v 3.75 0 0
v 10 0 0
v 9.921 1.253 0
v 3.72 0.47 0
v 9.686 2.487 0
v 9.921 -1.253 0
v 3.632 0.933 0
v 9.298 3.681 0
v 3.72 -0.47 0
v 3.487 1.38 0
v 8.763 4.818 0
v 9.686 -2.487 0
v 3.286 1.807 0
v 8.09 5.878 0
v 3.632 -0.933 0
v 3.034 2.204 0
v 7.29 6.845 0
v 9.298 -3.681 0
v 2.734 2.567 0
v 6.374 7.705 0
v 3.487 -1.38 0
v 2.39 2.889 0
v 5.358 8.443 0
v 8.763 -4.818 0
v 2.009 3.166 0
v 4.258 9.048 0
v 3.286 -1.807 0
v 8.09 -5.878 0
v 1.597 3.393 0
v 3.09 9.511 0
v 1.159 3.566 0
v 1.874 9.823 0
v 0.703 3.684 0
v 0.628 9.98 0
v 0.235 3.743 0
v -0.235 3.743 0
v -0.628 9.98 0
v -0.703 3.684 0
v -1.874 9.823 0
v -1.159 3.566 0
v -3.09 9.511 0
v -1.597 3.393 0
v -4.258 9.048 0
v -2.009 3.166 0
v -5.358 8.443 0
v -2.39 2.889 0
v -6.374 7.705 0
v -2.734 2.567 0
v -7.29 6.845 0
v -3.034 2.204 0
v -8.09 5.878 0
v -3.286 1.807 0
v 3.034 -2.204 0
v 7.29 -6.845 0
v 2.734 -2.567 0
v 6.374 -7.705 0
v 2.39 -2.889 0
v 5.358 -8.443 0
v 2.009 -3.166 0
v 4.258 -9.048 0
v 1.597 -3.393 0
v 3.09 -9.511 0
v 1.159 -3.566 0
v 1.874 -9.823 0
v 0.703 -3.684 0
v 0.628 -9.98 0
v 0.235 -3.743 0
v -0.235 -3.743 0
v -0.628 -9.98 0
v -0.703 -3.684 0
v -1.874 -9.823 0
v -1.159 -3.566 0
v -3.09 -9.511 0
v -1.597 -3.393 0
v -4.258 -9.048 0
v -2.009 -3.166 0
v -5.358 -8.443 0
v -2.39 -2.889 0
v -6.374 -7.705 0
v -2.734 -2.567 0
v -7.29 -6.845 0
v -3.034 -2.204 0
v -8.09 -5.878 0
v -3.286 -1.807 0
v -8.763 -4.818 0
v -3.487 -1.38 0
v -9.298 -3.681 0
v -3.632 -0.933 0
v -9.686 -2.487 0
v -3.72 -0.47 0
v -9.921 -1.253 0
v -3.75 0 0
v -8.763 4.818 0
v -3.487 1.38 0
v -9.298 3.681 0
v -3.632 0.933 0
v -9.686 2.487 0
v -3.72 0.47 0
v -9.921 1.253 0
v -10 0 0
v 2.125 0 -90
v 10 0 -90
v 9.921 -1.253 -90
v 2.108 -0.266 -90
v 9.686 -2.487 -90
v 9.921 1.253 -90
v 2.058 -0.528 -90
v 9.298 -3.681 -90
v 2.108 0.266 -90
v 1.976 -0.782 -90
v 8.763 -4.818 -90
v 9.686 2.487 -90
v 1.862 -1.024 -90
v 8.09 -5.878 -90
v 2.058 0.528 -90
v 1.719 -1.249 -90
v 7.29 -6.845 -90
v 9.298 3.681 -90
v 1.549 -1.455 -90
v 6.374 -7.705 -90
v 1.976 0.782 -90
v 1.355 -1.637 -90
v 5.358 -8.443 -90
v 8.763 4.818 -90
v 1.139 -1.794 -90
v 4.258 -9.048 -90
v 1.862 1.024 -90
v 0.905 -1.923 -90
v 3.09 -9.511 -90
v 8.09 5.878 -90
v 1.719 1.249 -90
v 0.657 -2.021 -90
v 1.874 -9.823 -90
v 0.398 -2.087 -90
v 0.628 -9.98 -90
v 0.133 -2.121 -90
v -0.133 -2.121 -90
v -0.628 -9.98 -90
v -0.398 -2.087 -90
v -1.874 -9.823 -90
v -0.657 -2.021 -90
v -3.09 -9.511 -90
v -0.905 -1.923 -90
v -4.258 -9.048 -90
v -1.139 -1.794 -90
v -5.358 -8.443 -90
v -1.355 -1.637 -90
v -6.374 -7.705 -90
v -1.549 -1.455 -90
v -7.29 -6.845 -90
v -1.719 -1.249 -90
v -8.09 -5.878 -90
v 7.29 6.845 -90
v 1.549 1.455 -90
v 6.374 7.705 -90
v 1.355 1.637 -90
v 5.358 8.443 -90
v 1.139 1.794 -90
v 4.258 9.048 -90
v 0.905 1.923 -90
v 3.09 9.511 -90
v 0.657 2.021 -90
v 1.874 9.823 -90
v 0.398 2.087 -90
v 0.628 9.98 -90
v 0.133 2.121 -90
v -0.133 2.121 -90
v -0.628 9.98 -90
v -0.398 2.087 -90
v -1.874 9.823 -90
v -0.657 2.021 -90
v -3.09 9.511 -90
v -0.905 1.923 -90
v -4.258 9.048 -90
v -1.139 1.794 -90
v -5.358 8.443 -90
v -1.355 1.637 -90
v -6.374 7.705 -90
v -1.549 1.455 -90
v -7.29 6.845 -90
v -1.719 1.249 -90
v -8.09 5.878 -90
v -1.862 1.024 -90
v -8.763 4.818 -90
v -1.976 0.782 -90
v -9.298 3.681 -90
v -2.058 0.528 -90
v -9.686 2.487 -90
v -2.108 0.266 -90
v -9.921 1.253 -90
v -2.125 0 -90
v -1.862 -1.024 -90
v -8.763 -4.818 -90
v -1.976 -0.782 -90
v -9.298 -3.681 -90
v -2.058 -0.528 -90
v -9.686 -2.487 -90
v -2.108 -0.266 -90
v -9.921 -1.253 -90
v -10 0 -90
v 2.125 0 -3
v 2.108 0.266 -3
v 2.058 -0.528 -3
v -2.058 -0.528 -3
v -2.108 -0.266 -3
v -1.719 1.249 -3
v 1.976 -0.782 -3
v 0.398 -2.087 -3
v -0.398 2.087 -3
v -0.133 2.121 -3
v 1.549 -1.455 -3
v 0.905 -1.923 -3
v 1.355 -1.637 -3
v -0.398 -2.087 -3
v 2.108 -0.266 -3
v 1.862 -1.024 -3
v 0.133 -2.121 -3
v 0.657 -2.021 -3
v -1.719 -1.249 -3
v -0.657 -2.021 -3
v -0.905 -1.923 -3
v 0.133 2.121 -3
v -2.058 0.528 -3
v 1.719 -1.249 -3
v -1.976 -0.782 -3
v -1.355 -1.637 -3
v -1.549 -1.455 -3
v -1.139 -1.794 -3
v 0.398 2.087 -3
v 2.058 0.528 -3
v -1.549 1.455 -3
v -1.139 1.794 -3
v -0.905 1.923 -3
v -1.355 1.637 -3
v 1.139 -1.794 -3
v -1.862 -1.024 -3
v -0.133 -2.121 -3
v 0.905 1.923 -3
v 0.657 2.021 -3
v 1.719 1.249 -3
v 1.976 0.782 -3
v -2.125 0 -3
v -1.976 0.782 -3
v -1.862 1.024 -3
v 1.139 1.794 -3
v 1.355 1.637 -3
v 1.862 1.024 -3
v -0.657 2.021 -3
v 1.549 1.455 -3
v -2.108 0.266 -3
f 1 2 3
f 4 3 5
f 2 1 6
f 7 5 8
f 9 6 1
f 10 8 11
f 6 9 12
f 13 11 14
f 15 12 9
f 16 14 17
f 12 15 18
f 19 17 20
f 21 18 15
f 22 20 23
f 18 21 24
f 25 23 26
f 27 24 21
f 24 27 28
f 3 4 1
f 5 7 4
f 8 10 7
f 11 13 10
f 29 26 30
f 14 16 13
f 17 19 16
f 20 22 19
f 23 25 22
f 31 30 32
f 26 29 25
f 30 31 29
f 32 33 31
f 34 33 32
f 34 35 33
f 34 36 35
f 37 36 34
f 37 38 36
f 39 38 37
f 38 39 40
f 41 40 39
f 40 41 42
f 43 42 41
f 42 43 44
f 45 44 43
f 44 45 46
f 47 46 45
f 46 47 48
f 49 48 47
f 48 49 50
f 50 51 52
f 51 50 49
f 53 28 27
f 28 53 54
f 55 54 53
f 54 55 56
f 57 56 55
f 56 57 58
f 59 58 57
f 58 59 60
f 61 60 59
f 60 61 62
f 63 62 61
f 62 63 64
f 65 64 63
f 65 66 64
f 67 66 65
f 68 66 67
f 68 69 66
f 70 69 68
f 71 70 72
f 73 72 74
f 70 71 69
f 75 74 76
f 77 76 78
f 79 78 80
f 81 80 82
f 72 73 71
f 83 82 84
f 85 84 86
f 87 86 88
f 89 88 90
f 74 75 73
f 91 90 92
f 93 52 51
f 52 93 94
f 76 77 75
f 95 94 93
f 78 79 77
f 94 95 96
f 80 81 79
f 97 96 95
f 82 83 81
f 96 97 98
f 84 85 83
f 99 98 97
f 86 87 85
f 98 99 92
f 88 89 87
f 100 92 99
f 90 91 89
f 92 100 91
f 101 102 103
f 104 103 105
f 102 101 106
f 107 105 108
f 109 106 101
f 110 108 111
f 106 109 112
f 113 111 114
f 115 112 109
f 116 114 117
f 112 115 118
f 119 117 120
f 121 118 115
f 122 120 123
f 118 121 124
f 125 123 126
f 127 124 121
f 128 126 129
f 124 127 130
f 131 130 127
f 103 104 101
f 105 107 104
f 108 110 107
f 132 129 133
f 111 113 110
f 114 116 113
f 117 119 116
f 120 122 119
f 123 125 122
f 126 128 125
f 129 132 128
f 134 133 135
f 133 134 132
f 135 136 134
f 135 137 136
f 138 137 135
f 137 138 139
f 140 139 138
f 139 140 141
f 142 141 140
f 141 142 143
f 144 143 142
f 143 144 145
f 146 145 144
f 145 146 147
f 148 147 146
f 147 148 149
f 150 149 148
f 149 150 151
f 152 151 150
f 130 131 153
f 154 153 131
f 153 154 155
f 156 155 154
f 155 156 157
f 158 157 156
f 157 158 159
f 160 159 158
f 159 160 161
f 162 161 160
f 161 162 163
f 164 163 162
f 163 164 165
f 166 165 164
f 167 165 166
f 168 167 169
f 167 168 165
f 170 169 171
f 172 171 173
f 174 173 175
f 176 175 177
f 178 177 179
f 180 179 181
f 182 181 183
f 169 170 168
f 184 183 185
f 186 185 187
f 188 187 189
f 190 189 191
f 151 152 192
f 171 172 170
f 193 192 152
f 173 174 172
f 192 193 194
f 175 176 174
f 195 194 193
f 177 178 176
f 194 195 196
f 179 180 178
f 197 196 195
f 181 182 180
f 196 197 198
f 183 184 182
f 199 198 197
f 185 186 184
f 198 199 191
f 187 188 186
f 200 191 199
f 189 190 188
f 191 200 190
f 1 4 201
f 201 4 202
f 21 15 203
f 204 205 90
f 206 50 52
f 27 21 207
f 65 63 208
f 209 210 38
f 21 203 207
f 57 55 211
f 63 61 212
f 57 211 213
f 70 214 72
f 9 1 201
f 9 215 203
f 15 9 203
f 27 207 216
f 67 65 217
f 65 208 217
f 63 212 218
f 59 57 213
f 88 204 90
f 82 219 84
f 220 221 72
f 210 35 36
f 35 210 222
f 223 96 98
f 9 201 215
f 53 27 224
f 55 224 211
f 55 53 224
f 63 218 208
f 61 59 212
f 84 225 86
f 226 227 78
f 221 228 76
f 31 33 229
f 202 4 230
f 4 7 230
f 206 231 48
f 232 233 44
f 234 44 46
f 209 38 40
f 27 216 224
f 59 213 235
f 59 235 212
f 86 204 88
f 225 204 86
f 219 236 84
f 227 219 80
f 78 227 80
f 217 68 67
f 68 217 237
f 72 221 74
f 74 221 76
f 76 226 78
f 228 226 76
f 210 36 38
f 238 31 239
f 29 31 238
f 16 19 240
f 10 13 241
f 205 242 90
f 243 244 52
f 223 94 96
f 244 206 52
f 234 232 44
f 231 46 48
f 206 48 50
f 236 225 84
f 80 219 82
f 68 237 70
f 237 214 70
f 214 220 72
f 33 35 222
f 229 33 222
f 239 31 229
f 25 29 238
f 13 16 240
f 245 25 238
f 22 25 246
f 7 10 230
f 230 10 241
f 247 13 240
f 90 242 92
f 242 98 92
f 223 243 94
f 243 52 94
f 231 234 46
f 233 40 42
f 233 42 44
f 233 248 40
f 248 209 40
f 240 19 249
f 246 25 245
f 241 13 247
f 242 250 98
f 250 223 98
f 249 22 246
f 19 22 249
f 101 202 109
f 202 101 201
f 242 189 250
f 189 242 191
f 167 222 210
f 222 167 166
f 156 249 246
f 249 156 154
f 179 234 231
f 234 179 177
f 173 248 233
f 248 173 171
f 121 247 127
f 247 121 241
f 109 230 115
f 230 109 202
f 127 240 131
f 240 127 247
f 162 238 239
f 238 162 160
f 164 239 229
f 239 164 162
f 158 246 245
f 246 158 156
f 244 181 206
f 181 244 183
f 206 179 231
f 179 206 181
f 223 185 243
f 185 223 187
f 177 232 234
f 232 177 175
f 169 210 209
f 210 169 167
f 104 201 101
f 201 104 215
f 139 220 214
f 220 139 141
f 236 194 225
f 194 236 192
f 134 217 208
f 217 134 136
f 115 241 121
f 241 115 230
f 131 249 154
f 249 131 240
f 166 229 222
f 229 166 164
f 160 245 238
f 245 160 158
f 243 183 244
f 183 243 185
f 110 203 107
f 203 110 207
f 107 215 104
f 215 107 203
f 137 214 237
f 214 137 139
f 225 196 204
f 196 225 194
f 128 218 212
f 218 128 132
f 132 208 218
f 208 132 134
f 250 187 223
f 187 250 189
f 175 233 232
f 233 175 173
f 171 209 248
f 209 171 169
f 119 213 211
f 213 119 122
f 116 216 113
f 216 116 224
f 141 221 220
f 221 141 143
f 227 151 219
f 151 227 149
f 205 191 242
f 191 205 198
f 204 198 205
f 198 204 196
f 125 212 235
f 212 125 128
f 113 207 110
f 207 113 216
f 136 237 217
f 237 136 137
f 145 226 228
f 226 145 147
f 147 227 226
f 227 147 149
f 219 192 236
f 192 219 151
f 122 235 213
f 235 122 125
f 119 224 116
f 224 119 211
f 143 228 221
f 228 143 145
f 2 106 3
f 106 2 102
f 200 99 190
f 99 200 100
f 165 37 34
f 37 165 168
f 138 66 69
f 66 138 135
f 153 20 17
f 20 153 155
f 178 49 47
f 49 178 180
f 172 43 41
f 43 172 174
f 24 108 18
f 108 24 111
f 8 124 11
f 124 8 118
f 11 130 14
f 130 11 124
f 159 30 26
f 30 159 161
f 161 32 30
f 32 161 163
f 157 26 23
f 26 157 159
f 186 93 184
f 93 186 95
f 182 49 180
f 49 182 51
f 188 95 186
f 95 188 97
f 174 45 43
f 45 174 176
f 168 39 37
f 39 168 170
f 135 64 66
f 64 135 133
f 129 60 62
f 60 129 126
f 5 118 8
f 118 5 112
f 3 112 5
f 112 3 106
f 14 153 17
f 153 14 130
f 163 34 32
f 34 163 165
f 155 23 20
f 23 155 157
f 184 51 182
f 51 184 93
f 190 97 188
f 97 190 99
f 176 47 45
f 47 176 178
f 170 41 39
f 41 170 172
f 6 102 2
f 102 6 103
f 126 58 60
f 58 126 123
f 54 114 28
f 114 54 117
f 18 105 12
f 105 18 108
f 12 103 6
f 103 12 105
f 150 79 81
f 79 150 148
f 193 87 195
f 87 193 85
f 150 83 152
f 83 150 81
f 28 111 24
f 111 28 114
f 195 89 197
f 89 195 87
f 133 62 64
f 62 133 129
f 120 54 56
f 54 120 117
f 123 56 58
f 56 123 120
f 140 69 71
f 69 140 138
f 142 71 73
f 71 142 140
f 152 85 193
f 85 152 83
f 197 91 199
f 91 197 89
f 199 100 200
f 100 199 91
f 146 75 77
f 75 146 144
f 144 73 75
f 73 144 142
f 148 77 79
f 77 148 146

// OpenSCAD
$fn = 50;


difference() {
	union() {
		translate(v = [0, 0, -90.0000000000]) {
			cylinder(h = 90, r = 10.0000000000);
		}
		cylinder(h = 0, r = 19.0000000000);
	}
	union() {
		translate(v = [0, 0, 0]) {
			rotate(a = [0, 0, 0]) {
				difference() {
					union() {
						#translate(v = [0, 0, -90.0000000000]) {
							cylinder(h = 90, r = 2.0000000000);
						}
						#translate(v = [0, 0, -3]) {
							cylinder(h = 3, r1 = 2.1250000000, r2 = 3.7500000000);
						}
						#translate(v = [0, 0, -90.0000000000]) {
							cylinder(h = 90, r = 2.1250000000);
						}
						#translate(v = [0, 0, -90.0000000000]) {
							cylinder(h = 90, r = 2.0000000000);
						}
					}
					union();
				}
			}
		}
	}
}
